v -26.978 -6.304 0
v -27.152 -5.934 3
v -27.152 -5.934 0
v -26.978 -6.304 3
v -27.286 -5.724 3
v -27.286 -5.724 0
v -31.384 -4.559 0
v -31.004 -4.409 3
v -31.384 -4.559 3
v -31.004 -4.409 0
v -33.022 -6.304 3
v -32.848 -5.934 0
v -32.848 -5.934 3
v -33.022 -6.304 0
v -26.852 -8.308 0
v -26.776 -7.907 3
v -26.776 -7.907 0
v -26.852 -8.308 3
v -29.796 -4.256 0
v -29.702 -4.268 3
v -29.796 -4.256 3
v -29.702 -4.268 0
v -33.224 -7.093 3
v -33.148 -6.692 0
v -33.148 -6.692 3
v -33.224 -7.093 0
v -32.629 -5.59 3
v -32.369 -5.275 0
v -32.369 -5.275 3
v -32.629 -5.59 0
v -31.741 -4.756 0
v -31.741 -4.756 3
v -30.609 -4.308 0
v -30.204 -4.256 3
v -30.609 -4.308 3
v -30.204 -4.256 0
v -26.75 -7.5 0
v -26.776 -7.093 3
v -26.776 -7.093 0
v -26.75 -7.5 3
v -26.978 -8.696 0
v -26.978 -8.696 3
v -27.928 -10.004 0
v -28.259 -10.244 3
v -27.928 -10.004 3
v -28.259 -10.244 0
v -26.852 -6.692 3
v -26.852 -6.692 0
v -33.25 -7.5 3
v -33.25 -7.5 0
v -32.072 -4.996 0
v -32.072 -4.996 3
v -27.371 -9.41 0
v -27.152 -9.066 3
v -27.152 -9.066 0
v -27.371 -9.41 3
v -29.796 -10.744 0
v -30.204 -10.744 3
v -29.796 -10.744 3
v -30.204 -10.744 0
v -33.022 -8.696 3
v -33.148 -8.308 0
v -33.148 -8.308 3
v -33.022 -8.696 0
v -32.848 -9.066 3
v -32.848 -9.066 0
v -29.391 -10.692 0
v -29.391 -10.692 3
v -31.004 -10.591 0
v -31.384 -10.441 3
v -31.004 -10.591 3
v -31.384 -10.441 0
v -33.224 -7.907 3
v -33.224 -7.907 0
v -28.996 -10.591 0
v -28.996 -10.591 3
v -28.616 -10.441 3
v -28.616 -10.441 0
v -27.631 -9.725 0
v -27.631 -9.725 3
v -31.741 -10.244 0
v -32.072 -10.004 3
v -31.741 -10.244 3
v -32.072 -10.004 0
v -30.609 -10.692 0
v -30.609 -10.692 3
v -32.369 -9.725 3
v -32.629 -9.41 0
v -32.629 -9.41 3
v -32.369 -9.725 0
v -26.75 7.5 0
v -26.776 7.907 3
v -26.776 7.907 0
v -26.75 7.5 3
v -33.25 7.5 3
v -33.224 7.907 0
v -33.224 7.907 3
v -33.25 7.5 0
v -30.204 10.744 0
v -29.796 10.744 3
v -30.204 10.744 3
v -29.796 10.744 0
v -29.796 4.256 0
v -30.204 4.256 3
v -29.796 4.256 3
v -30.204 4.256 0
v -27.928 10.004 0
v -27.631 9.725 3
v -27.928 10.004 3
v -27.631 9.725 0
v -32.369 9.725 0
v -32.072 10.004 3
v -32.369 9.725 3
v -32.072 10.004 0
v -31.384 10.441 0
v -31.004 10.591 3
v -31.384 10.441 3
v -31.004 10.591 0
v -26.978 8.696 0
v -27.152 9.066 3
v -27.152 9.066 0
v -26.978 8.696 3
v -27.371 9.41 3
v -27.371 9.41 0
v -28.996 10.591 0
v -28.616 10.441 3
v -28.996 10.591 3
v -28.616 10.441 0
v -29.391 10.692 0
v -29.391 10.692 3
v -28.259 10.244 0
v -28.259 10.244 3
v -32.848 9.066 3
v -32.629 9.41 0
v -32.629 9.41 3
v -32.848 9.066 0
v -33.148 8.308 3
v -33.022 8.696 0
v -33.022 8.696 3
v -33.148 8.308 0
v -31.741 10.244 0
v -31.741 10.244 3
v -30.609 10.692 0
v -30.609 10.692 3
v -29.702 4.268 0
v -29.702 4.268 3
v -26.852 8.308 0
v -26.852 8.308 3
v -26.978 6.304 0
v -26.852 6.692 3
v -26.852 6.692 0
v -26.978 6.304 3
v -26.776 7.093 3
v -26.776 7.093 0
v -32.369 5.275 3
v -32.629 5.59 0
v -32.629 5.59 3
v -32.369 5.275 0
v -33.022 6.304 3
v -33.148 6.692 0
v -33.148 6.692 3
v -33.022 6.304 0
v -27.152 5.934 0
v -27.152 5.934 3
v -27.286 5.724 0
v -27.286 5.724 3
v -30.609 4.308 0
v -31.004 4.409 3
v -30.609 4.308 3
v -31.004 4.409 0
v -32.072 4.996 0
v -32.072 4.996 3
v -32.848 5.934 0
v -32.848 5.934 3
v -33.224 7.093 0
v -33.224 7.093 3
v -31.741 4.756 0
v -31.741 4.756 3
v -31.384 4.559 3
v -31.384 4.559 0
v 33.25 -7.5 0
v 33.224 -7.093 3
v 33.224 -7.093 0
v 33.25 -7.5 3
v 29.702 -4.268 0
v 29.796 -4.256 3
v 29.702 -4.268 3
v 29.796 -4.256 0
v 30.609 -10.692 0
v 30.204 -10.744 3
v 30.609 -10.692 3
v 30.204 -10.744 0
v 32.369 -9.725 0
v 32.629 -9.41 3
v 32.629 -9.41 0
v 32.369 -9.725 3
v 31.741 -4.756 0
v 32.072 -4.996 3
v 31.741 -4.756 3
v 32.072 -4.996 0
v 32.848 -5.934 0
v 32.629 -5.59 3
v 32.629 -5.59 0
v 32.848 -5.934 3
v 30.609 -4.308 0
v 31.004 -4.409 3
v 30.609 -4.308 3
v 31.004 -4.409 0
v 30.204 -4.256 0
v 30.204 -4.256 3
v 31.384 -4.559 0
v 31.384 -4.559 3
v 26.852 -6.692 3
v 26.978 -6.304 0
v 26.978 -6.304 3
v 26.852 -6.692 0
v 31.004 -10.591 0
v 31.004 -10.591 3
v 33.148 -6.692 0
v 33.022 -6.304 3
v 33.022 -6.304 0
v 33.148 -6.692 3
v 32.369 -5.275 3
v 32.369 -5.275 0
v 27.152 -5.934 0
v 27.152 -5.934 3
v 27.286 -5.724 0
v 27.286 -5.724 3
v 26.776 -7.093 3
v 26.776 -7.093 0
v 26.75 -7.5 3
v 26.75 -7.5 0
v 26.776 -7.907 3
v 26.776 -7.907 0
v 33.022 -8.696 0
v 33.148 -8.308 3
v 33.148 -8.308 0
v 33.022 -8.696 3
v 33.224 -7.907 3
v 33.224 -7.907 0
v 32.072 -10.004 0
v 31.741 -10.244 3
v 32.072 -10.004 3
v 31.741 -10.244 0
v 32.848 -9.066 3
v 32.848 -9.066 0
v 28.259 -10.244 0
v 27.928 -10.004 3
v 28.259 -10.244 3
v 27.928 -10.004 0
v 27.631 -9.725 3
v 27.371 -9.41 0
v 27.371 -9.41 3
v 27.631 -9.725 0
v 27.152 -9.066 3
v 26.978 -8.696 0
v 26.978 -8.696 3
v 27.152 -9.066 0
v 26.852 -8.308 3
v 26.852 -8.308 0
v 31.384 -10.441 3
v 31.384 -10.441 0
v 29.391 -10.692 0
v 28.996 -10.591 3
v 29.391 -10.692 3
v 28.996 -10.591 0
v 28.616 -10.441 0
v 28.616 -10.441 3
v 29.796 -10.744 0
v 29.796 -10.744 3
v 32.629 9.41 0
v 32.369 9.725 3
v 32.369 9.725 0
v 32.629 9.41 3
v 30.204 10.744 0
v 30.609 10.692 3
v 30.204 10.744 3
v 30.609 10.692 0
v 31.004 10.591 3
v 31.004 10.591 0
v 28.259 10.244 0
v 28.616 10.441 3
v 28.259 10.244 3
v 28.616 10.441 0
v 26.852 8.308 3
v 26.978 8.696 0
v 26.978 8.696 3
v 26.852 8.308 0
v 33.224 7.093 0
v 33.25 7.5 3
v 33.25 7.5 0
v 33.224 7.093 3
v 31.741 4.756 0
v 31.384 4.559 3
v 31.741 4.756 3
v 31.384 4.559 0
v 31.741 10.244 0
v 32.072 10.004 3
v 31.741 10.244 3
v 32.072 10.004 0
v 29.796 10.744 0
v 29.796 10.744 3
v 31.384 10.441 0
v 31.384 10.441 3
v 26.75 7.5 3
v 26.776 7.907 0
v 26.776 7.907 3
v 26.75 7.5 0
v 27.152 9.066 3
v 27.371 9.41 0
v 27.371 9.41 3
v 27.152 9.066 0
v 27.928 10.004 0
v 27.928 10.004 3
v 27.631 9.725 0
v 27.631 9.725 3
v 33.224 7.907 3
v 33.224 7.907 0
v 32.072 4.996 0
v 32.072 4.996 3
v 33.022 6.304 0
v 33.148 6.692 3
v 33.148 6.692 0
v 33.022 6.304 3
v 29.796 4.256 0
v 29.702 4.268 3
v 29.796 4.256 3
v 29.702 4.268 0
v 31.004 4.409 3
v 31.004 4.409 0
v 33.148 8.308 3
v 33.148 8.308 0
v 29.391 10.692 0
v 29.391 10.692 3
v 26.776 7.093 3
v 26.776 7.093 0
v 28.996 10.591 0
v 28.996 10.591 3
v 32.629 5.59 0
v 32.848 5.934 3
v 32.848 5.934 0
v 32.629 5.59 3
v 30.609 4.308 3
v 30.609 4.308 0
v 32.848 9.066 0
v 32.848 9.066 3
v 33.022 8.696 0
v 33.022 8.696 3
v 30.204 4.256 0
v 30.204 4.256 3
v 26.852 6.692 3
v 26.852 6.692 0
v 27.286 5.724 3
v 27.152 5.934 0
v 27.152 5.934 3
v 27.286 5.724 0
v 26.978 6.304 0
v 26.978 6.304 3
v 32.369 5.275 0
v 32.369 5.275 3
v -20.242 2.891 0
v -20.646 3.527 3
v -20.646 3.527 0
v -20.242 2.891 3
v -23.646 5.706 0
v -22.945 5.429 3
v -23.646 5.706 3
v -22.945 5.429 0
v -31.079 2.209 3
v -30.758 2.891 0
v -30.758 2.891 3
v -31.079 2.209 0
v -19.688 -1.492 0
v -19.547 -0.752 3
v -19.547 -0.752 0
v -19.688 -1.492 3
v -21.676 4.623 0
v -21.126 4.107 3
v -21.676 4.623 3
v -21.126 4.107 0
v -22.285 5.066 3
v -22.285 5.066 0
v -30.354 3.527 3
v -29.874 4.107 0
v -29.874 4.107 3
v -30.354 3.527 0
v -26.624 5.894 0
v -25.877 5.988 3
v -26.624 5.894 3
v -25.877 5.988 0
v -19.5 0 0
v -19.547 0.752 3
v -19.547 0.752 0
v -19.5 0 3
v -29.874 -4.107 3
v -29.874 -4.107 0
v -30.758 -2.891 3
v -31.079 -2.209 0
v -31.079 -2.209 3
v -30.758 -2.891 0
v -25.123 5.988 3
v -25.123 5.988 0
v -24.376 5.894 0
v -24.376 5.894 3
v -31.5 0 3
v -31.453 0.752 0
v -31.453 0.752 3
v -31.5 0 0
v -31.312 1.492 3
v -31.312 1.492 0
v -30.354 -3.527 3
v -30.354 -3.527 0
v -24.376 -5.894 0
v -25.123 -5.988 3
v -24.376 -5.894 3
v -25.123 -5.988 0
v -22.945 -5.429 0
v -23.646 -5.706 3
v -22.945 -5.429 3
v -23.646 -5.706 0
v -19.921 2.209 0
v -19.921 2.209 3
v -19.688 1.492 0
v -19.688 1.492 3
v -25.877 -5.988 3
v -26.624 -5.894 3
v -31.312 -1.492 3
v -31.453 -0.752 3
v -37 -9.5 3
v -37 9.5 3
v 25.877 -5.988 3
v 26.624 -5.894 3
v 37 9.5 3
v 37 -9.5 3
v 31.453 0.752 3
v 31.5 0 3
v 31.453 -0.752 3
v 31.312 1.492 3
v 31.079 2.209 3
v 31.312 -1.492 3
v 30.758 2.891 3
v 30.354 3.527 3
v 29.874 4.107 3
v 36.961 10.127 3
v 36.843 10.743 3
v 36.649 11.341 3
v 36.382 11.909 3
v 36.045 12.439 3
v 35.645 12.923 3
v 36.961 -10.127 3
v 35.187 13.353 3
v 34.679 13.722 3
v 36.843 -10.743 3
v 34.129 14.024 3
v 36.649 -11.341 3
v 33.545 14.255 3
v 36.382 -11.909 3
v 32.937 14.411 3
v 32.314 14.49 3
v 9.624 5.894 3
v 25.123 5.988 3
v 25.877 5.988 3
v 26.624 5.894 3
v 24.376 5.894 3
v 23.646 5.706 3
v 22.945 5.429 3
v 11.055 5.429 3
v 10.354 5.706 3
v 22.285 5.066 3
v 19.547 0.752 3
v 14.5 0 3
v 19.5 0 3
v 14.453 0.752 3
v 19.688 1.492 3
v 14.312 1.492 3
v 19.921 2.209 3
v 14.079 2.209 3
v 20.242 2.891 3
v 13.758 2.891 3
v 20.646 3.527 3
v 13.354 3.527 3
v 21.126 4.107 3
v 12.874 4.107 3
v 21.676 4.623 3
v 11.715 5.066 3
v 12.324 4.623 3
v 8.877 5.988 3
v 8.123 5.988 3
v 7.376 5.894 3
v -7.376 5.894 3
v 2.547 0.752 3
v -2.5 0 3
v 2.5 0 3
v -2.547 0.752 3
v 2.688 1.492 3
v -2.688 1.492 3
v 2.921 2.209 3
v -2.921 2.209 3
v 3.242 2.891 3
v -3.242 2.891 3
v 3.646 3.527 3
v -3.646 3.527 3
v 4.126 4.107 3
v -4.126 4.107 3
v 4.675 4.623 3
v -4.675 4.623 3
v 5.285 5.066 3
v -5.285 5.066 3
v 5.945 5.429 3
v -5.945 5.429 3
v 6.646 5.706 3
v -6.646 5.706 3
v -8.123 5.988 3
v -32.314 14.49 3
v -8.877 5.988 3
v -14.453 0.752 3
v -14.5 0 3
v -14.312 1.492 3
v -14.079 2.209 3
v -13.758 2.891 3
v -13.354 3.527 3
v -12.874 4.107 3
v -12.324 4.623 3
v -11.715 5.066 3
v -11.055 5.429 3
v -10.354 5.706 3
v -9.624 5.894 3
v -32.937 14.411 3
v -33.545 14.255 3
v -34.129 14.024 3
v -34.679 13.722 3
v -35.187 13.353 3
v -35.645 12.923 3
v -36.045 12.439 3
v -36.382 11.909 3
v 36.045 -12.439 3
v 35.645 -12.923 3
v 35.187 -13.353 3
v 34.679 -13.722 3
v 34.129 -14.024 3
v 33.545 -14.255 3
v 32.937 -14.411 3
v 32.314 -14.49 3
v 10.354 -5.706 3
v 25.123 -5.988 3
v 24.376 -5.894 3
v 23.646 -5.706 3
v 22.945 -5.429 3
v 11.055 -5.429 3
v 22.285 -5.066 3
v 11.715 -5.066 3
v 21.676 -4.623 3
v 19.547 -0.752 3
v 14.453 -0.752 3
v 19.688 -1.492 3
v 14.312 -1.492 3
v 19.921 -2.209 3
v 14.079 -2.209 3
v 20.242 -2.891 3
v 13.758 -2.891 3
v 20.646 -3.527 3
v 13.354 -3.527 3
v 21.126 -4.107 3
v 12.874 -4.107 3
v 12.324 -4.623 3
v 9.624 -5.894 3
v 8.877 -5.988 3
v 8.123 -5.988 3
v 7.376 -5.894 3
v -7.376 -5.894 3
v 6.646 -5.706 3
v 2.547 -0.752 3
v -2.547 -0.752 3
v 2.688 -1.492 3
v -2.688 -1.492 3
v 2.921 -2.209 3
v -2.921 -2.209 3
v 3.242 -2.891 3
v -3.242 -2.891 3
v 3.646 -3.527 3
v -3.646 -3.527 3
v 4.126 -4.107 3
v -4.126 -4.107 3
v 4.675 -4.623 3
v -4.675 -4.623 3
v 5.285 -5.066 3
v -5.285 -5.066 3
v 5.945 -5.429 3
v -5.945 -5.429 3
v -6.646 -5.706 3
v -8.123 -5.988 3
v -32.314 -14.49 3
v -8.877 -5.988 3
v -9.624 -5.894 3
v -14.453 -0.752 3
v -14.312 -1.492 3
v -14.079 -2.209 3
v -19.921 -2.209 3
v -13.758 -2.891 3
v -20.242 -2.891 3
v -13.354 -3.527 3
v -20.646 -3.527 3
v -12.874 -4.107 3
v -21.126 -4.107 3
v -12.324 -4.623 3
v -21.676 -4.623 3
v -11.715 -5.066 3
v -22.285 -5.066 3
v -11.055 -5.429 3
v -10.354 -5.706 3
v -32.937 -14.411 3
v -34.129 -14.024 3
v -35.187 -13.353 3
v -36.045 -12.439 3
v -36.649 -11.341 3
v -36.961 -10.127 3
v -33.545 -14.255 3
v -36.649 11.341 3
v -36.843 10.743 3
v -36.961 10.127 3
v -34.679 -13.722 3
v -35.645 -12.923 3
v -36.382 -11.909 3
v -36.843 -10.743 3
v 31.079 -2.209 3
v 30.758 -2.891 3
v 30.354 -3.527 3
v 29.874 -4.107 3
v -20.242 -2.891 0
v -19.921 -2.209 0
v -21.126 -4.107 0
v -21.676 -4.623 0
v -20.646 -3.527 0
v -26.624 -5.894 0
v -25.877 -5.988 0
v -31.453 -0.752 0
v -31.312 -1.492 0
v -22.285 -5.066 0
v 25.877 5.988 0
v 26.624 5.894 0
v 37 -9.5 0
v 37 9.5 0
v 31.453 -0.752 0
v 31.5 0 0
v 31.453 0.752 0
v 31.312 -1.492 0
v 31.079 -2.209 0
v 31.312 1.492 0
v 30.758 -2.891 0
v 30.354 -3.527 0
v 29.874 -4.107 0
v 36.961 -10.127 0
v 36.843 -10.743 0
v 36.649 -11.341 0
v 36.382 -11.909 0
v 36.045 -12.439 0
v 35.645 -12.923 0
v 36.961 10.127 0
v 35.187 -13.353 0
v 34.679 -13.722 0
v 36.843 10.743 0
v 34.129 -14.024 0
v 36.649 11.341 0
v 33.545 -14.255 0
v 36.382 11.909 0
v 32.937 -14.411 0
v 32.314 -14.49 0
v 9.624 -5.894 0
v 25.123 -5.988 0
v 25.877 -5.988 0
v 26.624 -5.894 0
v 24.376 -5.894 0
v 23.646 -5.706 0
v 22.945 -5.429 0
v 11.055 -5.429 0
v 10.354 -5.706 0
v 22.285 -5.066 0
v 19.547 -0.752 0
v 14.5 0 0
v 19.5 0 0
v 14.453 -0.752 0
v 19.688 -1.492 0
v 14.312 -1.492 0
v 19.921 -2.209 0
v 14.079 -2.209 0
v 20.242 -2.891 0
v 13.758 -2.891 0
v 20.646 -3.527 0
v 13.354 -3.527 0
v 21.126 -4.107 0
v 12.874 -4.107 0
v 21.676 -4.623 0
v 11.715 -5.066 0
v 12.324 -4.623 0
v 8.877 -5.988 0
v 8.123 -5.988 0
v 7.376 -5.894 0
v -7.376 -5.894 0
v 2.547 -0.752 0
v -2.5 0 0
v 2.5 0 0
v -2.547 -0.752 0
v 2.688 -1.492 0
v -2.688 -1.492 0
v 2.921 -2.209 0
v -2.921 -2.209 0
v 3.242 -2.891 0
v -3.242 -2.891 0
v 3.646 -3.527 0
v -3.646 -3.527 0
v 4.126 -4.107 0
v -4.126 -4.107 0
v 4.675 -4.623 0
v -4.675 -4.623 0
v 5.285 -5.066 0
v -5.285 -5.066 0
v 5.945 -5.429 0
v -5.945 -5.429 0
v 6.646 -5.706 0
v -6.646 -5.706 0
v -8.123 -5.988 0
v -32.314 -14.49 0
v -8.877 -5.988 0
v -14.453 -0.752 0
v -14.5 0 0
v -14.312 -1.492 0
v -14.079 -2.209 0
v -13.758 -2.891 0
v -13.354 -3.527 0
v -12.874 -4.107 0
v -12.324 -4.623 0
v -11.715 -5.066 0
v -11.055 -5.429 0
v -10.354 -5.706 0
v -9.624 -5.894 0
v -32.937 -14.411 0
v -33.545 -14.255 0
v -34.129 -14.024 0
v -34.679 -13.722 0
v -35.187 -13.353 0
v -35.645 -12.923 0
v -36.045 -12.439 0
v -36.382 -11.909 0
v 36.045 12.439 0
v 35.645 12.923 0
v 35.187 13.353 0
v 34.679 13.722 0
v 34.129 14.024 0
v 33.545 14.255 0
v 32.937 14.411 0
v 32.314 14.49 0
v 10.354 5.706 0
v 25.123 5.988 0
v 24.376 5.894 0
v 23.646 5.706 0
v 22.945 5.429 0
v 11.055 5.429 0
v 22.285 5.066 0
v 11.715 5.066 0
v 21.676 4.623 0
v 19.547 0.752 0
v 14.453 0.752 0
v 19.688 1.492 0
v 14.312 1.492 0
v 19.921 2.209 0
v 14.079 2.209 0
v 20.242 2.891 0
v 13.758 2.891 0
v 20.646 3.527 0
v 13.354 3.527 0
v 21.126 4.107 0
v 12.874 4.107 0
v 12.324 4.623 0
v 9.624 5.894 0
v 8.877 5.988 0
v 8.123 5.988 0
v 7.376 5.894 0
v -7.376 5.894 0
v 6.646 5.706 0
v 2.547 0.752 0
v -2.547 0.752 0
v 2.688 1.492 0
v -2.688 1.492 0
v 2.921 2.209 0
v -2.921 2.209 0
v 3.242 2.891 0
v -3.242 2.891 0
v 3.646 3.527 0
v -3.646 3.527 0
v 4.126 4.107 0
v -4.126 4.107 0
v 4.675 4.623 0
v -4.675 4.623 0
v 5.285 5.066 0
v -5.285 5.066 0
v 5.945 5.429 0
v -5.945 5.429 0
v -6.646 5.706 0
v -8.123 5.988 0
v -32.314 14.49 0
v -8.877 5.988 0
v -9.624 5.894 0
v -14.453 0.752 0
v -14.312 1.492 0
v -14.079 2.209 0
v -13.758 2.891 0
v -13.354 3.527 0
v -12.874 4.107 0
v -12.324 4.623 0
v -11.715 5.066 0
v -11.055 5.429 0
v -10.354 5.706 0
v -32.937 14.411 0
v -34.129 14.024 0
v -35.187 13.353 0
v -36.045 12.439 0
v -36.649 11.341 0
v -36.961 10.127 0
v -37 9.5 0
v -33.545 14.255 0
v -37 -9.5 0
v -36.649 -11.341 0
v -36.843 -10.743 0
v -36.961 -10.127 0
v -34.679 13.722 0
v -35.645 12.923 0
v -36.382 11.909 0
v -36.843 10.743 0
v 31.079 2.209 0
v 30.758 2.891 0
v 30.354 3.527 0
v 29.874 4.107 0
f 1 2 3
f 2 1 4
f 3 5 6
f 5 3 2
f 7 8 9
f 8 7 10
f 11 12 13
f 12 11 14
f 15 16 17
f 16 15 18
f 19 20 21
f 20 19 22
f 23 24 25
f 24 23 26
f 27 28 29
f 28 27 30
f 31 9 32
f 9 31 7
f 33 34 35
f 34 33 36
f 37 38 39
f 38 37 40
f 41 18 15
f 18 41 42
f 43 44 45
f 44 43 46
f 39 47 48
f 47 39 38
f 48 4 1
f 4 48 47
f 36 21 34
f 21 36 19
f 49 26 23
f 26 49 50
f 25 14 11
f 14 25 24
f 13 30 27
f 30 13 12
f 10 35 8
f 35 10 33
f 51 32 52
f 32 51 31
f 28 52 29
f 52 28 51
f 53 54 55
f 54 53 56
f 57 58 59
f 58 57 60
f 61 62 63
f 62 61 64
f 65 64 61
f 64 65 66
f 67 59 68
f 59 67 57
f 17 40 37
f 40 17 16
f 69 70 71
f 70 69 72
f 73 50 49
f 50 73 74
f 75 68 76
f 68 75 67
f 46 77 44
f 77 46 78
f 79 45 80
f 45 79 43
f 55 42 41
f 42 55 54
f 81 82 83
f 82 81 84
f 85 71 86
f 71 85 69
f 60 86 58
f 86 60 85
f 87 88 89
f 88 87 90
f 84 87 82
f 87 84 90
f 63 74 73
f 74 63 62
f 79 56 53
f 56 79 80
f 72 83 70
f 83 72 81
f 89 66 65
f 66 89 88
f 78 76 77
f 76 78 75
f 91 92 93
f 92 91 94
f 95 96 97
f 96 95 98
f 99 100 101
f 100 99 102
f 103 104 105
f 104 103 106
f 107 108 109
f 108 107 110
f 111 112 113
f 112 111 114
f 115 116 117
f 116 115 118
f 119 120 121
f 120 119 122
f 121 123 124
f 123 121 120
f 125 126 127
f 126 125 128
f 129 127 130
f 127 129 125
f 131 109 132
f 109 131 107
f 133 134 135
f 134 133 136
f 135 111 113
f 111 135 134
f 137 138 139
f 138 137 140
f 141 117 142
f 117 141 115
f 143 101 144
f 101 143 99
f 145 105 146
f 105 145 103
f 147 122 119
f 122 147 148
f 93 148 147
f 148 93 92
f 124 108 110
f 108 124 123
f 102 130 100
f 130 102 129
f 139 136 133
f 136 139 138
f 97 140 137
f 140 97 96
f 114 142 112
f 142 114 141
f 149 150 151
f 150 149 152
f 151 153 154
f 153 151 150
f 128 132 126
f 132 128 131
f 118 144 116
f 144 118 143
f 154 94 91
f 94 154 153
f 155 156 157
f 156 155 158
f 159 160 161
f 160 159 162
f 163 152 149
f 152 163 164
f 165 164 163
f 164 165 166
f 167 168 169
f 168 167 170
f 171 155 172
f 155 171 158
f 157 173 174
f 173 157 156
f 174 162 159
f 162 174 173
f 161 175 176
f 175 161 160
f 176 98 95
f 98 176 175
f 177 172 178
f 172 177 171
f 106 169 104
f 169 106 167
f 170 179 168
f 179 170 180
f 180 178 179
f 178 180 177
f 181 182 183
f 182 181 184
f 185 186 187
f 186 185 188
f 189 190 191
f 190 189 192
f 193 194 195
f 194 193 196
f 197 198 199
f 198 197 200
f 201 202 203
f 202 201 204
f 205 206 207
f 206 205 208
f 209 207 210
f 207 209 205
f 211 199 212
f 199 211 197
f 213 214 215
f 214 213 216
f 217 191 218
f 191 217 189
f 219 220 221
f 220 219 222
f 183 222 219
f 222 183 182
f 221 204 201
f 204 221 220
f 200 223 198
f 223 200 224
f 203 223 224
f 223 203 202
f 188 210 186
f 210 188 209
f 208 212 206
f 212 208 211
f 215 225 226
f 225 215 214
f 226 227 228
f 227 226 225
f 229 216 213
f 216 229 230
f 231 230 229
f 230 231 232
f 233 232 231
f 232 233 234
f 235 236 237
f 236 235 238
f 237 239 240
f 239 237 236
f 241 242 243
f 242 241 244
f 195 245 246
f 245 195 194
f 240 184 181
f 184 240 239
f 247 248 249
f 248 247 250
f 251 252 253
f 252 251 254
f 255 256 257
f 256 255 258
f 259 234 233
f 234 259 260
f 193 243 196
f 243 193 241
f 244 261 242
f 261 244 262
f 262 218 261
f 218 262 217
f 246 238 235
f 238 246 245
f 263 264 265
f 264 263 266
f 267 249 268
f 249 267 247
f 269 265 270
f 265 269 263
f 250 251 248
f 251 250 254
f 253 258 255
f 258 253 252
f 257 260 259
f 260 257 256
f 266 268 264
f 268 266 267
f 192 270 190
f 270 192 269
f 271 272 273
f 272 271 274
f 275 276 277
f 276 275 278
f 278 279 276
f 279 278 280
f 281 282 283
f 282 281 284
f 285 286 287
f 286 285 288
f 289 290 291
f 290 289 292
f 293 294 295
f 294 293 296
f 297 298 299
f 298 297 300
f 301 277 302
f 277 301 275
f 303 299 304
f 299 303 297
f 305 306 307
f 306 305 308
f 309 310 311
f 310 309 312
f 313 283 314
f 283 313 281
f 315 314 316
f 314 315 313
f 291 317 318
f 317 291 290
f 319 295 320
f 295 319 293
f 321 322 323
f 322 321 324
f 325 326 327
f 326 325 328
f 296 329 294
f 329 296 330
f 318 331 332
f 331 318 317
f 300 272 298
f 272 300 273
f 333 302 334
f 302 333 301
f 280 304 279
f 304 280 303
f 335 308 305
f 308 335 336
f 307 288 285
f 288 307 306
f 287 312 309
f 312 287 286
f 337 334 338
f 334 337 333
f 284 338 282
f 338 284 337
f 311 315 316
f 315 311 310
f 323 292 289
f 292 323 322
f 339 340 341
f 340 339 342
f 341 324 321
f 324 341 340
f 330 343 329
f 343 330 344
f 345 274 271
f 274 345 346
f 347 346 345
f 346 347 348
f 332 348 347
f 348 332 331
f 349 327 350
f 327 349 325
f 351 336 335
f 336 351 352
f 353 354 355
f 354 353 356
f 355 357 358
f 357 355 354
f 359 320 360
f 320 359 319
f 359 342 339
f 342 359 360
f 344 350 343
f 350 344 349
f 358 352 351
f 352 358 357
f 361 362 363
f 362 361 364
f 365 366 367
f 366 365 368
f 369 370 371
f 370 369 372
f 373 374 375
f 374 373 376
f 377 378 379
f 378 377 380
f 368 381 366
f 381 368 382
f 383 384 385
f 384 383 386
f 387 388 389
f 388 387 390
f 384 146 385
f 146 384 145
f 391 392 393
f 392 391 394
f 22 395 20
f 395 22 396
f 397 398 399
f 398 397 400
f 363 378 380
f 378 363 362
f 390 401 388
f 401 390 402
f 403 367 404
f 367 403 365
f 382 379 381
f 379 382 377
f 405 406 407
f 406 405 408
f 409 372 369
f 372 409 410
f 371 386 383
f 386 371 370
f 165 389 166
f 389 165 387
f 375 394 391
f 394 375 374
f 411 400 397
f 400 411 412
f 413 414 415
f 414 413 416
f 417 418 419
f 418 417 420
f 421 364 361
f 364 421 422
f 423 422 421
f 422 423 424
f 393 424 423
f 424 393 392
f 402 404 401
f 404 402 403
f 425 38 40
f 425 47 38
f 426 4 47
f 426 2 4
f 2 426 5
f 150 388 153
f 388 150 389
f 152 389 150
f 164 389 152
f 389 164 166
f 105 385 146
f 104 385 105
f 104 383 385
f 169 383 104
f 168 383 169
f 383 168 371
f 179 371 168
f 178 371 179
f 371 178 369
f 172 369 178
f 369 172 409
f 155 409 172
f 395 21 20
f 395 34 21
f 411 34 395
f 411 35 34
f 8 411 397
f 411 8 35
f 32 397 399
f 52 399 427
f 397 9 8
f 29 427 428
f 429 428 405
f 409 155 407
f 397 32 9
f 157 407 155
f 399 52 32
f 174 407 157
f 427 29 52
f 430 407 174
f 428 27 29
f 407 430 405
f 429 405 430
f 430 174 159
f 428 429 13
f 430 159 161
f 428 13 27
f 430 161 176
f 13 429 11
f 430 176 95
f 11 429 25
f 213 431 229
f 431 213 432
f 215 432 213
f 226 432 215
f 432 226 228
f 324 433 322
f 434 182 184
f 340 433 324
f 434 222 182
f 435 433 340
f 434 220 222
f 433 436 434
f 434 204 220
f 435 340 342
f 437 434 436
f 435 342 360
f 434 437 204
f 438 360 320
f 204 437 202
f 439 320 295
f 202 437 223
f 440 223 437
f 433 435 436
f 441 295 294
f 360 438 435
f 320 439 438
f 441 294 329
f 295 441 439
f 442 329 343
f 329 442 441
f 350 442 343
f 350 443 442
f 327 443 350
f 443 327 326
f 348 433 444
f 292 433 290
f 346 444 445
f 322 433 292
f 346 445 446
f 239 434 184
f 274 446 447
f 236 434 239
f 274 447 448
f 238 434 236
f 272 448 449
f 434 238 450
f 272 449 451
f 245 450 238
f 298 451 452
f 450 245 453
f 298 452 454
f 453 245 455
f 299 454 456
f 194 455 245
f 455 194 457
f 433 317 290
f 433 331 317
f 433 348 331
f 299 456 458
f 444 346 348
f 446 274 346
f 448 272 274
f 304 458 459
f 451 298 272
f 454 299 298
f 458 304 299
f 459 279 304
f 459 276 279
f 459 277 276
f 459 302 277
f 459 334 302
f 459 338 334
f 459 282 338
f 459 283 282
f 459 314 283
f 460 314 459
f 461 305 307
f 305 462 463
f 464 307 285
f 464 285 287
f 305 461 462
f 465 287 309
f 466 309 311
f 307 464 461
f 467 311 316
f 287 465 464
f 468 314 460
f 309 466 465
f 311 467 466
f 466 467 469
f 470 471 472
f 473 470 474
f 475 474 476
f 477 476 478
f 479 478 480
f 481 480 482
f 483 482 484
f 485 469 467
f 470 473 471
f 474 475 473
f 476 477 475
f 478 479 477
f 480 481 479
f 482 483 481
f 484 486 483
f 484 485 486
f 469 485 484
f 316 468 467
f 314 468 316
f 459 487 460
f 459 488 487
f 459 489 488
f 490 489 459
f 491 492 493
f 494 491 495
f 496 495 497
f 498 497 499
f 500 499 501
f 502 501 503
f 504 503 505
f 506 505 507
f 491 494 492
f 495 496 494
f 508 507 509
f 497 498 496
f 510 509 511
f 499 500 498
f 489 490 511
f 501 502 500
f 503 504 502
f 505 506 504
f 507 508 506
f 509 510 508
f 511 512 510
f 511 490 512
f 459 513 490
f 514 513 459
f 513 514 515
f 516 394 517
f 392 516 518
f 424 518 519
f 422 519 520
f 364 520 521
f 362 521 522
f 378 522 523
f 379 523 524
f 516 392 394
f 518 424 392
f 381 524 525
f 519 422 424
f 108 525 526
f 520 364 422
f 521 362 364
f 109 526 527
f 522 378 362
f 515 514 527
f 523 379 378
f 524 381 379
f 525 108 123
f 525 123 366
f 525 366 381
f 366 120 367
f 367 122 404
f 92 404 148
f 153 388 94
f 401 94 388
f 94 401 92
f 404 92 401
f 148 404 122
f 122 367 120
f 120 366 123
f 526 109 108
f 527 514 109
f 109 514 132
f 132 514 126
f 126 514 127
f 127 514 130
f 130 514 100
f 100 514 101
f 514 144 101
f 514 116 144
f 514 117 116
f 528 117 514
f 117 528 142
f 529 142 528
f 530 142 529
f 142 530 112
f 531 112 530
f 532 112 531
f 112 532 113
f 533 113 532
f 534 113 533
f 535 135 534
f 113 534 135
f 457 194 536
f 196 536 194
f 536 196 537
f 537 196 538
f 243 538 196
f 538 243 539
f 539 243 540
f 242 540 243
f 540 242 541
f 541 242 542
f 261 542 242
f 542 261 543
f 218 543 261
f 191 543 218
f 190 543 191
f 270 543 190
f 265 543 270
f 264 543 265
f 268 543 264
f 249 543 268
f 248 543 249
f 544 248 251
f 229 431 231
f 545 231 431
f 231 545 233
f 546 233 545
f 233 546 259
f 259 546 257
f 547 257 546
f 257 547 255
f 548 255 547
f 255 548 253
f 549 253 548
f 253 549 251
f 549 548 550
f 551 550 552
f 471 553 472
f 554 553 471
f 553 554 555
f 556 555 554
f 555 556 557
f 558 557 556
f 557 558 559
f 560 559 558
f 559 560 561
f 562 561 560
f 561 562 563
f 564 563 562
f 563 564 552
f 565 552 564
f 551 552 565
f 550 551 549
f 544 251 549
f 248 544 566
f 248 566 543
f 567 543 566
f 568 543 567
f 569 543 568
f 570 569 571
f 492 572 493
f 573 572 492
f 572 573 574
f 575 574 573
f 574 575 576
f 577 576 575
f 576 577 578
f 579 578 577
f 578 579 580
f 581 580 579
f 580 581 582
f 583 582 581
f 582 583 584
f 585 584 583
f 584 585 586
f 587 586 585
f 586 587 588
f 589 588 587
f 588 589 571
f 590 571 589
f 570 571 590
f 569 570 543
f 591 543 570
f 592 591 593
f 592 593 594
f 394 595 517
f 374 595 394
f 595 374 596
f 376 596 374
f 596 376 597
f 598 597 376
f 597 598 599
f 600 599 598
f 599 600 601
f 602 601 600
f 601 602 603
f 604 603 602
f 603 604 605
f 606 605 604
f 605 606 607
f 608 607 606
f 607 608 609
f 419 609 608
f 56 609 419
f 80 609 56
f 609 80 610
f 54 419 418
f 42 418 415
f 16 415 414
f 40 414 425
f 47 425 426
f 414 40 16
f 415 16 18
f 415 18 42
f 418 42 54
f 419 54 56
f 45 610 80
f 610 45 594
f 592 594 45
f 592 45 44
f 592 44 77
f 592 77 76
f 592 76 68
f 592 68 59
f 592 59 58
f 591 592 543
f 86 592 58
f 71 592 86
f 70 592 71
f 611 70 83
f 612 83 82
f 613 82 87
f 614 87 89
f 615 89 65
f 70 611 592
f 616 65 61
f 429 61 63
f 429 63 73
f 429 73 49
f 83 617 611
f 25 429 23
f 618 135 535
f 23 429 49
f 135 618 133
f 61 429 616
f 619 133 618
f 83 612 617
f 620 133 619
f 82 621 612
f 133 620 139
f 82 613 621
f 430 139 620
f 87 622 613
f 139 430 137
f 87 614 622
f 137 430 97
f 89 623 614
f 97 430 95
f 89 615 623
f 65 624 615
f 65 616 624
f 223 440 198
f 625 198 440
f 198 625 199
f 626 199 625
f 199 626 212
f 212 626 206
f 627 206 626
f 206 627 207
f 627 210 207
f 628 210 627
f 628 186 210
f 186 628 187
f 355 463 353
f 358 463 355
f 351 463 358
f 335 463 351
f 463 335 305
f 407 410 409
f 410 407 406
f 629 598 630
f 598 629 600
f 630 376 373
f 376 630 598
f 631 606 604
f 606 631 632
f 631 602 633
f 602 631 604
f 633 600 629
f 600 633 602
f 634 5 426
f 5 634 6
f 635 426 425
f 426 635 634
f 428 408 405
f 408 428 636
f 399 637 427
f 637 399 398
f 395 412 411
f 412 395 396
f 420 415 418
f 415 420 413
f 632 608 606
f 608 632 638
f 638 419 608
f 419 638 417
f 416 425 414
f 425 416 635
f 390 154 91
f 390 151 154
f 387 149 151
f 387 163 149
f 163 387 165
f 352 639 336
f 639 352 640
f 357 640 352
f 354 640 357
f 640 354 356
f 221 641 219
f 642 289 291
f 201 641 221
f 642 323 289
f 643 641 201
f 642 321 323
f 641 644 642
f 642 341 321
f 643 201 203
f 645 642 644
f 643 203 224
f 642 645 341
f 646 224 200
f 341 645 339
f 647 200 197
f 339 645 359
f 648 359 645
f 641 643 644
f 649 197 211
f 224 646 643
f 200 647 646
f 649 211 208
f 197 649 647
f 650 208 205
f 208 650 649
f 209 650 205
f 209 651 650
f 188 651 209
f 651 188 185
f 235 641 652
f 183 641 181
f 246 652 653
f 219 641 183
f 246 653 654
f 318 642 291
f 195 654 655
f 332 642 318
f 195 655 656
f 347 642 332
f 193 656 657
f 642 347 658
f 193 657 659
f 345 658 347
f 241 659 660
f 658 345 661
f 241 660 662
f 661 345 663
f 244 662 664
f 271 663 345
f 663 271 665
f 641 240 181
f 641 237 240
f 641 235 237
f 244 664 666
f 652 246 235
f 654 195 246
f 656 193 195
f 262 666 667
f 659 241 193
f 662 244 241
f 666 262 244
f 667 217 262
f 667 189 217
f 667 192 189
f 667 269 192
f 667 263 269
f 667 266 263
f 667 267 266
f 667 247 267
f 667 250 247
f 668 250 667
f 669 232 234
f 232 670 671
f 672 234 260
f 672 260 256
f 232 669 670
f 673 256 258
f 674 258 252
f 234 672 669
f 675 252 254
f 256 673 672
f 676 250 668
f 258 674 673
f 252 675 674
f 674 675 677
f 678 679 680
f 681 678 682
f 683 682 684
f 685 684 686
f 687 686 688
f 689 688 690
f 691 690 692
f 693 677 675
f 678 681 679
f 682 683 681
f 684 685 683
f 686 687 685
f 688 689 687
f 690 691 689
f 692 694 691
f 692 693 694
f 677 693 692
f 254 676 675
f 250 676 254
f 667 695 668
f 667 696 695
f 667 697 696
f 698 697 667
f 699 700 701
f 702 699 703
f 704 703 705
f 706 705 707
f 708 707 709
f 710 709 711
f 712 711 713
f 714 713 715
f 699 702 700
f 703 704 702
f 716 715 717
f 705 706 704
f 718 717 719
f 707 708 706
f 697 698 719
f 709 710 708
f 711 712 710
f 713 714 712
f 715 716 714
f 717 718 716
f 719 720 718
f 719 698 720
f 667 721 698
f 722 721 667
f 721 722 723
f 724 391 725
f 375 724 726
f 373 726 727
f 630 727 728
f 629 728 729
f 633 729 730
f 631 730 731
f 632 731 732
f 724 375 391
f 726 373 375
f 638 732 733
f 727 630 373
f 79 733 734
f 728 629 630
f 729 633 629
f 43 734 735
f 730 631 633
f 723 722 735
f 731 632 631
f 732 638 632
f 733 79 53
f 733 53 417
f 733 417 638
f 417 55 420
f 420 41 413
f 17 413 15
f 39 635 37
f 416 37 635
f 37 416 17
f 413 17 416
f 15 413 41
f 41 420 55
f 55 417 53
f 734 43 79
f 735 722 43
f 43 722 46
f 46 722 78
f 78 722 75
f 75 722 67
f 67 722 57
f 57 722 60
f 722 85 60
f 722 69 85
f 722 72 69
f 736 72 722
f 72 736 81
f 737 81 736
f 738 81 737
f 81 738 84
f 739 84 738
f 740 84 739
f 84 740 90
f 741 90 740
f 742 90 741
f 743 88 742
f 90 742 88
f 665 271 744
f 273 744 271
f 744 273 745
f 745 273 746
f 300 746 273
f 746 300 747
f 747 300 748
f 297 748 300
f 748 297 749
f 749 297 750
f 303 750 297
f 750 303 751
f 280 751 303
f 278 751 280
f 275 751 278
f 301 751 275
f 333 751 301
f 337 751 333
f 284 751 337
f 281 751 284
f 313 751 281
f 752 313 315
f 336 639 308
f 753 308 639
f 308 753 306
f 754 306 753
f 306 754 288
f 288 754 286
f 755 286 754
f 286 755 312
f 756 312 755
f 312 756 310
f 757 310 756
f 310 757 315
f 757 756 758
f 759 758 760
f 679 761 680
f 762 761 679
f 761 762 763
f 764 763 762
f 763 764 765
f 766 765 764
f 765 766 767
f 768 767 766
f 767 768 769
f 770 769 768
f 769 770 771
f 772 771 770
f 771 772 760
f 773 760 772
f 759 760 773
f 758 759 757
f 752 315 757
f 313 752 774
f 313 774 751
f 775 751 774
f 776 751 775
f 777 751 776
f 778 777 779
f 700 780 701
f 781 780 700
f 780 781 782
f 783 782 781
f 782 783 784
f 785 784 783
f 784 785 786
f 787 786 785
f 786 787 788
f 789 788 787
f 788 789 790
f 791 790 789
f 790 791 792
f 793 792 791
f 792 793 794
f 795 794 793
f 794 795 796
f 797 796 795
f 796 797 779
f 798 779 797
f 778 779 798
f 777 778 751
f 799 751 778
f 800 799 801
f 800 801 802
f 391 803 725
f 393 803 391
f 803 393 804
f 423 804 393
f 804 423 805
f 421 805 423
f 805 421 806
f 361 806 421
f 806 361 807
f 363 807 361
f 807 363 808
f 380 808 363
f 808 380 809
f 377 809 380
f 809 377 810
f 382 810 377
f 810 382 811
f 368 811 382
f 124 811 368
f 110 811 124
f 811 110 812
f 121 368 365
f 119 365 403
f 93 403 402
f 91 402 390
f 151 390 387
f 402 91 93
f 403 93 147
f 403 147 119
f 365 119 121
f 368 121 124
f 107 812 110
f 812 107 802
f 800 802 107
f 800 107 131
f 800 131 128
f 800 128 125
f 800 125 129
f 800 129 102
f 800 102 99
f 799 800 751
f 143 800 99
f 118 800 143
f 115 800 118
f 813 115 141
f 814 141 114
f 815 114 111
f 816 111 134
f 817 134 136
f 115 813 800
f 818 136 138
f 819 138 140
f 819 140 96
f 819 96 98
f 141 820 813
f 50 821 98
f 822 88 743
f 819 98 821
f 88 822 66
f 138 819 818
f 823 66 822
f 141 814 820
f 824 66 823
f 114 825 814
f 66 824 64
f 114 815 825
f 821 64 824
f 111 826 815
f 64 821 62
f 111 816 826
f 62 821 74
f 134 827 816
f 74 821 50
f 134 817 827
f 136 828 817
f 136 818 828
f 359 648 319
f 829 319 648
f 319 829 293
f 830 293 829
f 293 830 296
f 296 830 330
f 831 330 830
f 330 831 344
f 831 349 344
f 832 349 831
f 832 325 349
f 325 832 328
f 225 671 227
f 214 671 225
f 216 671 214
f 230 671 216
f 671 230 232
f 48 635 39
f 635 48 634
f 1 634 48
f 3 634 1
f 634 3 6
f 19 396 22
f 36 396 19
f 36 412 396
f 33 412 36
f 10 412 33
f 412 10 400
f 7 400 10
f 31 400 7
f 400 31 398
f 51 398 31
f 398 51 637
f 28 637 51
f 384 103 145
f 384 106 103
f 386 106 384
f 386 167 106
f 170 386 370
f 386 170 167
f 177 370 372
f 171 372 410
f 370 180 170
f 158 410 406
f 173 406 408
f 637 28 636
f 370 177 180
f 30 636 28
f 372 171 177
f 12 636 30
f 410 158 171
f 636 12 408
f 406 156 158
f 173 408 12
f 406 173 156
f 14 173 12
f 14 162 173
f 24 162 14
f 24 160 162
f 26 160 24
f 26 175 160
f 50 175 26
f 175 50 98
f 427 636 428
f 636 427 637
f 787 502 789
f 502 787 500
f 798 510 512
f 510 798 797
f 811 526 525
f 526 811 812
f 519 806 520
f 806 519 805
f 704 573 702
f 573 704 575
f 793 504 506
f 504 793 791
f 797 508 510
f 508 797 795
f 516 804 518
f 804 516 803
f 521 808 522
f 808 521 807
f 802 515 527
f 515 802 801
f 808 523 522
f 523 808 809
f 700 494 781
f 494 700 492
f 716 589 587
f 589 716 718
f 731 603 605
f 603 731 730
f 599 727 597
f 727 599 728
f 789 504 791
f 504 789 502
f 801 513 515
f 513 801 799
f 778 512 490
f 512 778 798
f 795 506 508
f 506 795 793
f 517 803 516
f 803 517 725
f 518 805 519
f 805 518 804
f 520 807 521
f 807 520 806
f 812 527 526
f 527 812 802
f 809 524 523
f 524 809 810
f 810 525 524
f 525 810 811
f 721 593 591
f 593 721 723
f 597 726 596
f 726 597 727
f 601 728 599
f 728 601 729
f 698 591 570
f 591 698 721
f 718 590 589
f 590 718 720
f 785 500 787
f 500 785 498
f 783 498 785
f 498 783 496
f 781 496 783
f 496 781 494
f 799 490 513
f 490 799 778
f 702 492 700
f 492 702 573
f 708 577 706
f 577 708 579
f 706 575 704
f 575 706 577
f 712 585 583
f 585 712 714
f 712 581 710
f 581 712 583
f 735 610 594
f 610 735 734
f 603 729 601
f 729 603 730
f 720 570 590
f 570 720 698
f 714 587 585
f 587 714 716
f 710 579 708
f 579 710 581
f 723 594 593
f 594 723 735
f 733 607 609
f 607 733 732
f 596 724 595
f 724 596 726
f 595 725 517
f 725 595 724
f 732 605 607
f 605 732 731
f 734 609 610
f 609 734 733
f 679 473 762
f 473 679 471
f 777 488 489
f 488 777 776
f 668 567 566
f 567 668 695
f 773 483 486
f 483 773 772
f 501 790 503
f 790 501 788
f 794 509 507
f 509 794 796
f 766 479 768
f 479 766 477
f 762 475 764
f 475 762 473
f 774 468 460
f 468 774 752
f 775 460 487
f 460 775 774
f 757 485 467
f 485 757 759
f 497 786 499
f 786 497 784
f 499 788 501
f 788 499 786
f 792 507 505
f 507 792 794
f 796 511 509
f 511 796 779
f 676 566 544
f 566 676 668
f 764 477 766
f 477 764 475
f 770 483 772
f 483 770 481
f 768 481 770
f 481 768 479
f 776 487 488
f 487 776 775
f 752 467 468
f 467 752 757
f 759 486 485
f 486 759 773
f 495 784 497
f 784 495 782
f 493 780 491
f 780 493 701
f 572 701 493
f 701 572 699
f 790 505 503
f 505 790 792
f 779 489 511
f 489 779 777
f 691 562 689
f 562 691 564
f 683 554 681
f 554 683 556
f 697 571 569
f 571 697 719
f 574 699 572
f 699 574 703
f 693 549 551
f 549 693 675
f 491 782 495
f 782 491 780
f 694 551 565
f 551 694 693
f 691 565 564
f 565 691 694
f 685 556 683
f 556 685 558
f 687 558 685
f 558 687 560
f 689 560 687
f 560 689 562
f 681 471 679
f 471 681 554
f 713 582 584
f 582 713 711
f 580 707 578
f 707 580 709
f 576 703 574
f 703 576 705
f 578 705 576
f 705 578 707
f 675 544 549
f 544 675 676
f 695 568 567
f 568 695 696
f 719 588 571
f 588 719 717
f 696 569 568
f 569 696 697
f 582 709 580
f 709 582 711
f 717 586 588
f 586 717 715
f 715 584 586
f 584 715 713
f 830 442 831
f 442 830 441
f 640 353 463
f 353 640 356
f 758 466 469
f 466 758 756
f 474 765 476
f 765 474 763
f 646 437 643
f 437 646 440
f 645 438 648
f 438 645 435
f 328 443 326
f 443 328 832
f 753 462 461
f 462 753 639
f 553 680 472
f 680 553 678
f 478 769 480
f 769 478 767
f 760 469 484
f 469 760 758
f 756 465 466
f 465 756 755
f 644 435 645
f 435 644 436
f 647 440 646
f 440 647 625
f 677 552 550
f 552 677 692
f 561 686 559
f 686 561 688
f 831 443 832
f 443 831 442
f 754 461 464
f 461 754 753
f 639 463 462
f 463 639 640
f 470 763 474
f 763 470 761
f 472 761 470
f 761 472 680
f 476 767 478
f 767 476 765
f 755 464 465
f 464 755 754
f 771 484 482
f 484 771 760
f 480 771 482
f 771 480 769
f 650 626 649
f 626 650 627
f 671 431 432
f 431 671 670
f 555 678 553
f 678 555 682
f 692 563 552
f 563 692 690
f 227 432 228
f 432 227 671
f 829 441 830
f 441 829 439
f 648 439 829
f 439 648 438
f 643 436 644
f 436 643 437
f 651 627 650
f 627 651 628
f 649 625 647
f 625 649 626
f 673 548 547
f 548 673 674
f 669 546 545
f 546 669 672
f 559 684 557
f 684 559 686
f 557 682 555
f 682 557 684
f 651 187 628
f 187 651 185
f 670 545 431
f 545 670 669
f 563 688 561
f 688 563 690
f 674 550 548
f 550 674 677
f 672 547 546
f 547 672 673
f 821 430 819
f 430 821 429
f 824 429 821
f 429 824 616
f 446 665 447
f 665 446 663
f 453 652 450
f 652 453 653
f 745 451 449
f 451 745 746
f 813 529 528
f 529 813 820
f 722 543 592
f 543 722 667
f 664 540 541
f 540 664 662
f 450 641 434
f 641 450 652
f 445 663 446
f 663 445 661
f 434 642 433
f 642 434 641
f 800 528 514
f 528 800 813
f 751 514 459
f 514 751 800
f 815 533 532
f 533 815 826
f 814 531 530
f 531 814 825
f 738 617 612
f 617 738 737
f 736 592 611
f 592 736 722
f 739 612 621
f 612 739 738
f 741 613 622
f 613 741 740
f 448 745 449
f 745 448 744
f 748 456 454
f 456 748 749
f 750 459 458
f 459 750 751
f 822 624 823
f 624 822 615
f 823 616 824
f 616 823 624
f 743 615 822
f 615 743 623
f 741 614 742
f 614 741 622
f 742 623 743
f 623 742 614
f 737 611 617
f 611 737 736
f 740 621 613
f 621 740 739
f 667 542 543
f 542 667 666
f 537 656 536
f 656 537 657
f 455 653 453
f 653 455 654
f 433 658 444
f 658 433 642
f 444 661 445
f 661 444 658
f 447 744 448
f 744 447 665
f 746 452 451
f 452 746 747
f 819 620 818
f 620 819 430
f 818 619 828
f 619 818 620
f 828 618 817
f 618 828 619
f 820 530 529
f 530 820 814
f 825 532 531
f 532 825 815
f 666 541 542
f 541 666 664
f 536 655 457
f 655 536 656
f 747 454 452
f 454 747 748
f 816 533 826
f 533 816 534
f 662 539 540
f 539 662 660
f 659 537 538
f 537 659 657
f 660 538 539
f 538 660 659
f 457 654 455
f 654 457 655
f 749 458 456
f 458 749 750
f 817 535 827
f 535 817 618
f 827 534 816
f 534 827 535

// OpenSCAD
$fn = 50;


difference() {
	union() {
		hull() {
			translate(v = [-32.0000000000, 9.5000000000, 0]) {
				cylinder(h = 3, r = 5);
			}
			translate(v = [32.0000000000, 9.5000000000, 0]) {
				cylinder(h = 3, r = 5);
			}
			translate(v = [-32.0000000000, -9.5000000000, 0]) {
				cylinder(h = 3, r = 5);
			}
			translate(v = [32.0000000000, -9.5000000000, 0]) {
				cylinder(h = 3, r = 5);
			}
		}
	}
	union() {
		#translate(v = [-30.0000000000, -7.5000000000, -100.0000000000]) {
			cylinder(h = 200, r = 3.2500000000);
		}
		#translate(v = [-30.0000000000, 7.5000000000, -100.0000000000]) {
			cylinder(h = 200, r = 3.2500000000);
		}
		#translate(v = [30.0000000000, -7.5000000000, -100.0000000000]) {
			cylinder(h = 200, r = 3.2500000000);
		}
		#translate(v = [30.0000000000, 7.5000000000, -100.0000000000]) {
			cylinder(h = 200, r = 3.2500000000);
		}
		#translate(v = [-25.5000000000, 0, 0]) {
			cylinder(h = 3, r = 6.0000000000);
		}
		#translate(v = [-8.5000000000, 0, 0]) {
			cylinder(h = 3, r = 6.0000000000);
		}
		#translate(v = [8.5000000000, 0, 0]) {
			cylinder(h = 3, r = 6.0000000000);
		}
		#translate(v = [25.5000000000, 0, 0]) {
			cylinder(h = 3, r = 6.0000000000);
		}
	}
}
